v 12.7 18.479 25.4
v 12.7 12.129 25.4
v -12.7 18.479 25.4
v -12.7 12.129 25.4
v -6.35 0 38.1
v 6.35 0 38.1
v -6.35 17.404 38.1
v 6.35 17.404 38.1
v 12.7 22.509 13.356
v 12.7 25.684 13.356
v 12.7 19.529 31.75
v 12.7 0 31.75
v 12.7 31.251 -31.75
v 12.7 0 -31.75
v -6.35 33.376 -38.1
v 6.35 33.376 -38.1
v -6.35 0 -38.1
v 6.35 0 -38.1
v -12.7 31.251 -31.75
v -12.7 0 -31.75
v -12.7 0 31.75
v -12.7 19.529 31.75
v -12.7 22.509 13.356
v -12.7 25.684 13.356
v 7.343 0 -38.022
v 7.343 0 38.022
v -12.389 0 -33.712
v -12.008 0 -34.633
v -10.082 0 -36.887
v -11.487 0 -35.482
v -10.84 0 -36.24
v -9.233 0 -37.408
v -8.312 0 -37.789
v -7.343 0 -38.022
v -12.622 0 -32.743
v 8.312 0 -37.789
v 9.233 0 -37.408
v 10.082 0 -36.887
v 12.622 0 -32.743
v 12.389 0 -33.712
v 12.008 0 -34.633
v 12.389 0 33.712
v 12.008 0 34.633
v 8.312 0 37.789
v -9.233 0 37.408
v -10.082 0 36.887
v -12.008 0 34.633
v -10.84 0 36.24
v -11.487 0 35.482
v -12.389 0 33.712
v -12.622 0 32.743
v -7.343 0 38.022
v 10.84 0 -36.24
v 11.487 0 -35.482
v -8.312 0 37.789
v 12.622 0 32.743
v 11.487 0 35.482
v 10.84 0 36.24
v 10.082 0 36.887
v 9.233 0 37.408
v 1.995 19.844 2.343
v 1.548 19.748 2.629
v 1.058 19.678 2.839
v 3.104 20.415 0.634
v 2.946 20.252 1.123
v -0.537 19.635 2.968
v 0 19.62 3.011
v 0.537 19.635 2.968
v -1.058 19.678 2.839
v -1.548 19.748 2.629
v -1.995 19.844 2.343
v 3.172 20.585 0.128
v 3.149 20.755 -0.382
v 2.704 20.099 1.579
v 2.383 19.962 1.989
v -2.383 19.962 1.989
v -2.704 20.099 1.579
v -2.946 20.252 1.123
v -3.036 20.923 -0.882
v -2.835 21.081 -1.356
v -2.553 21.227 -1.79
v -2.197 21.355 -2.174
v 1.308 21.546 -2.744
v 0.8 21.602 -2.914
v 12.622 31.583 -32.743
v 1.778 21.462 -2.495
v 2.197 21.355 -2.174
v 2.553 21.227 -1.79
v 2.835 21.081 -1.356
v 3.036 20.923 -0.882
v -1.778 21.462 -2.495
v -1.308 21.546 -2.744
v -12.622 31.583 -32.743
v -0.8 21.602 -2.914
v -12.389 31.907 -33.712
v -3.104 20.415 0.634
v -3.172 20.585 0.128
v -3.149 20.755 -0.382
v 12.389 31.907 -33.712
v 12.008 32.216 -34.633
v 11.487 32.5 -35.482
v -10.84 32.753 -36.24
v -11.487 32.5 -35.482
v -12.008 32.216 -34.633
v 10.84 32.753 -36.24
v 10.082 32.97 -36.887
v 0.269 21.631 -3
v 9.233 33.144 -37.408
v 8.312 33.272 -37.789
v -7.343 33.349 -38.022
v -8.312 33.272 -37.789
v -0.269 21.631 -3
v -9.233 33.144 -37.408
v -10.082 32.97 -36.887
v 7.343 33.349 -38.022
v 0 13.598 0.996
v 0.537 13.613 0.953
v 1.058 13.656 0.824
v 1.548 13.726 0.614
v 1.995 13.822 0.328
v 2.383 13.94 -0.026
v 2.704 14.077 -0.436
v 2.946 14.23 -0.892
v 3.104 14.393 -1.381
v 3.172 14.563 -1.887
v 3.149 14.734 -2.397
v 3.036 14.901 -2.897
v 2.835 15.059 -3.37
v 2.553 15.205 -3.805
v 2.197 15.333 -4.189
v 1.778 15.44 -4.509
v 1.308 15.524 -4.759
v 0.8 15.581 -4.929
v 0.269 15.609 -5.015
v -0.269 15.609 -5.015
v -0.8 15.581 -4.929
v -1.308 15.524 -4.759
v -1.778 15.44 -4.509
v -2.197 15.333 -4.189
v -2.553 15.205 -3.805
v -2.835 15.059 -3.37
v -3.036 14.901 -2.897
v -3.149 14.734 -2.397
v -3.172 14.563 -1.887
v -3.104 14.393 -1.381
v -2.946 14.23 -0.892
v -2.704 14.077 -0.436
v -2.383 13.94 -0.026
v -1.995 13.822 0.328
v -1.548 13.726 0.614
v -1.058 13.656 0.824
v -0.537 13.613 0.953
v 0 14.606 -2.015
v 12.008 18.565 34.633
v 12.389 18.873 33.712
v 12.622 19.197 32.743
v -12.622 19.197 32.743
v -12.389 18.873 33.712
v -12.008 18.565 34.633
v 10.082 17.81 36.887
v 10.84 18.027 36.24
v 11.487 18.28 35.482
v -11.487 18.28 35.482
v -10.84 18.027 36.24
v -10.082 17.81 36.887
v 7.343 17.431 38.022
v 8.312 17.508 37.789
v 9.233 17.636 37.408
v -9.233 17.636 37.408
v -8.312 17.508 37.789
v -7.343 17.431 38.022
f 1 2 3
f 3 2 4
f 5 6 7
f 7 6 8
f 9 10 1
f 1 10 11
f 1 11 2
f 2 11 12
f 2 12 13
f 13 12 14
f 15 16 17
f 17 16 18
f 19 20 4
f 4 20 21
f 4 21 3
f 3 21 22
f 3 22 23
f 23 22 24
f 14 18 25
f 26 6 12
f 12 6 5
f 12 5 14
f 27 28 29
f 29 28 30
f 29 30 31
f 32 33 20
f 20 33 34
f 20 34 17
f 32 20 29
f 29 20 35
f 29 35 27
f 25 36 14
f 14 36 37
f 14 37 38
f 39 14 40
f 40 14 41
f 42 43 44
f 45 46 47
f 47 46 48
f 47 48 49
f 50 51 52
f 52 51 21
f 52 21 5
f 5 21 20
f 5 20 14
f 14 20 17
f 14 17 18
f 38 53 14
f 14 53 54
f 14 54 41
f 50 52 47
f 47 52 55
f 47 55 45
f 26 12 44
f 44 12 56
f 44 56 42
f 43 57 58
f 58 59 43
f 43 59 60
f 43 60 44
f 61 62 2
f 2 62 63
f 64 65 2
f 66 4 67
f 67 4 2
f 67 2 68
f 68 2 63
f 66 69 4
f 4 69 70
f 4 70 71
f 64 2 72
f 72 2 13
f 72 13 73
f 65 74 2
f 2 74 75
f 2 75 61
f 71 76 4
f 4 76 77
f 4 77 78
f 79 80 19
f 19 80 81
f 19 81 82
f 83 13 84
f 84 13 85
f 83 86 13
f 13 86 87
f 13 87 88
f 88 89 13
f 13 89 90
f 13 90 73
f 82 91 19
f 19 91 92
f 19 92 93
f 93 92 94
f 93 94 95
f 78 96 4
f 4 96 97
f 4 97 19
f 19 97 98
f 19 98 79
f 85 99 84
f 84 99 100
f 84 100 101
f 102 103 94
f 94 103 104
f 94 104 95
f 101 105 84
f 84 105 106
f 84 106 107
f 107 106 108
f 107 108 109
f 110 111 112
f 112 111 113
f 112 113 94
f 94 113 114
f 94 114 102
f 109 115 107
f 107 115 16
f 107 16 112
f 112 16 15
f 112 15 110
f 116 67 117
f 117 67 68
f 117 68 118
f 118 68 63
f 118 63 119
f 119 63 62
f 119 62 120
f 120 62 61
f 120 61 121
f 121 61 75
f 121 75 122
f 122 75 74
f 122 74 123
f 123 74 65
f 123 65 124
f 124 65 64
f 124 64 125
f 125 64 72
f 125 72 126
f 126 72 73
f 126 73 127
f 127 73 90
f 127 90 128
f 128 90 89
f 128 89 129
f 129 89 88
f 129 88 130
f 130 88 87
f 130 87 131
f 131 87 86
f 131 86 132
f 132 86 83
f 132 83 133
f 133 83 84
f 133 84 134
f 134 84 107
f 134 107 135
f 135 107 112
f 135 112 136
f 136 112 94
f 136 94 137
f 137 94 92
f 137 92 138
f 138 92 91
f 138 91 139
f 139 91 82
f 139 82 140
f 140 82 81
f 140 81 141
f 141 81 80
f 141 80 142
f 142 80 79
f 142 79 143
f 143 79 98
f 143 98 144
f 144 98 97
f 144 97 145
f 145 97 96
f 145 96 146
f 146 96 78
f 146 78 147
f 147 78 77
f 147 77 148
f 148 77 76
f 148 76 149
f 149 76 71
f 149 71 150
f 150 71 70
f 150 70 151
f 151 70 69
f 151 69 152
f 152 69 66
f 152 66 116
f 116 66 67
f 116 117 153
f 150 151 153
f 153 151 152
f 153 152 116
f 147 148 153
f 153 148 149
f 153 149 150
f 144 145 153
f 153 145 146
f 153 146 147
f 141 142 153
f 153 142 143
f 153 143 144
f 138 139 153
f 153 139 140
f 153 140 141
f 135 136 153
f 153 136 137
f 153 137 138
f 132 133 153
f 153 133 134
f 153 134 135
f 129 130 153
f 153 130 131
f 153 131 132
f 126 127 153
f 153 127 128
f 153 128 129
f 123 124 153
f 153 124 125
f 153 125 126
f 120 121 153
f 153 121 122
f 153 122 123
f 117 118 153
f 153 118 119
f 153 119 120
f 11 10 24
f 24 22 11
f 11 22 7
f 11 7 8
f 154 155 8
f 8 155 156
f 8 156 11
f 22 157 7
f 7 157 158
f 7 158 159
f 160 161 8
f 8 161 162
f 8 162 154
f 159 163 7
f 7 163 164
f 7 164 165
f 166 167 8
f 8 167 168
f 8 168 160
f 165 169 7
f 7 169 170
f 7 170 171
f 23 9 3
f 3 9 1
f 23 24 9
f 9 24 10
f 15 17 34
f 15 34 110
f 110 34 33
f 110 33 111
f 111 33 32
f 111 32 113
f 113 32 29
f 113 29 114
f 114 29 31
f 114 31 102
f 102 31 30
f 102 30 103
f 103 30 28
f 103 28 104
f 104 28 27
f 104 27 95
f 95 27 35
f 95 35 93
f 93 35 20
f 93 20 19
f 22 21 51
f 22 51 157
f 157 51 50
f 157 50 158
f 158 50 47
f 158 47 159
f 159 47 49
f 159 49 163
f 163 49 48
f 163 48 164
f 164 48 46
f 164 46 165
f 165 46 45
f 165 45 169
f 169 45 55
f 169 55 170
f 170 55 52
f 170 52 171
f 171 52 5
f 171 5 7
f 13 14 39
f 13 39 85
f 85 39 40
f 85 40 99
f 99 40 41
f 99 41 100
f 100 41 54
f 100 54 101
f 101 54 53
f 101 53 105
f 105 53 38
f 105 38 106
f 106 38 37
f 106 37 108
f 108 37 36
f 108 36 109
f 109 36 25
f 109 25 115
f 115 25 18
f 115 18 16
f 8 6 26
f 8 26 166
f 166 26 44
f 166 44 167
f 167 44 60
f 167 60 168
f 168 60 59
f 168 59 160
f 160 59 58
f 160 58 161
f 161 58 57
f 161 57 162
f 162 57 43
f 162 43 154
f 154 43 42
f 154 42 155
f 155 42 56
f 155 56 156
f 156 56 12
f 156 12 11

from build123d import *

# Parameters (mm, degrees)
SKETCH1_W               = 25.4
SKETCH1_H               = 76.2
BOSS_EXTRUDE1_DEPTH     = 33.3756
CUT_EXTRUDE2_DEPTH      = 57.663045059
CUT_EXTRUDE2_DEPTH_BACK = 57.663045059
SKETCH5_R               = 3.175
CUT_EXTRUDE3_DEPTH      = 6.35
BOSS_EXTRUDE2_REACH     = 63.744
SKETCH1_5_W             = 25.4
SKETCH1_5_H             = 12.7
SKETCH7_W               = 25.4
SKETCH7_H               = 3.175
BOSS_EXTRUDE3_DEPTH     = 12.7
FILLET1_R               = 6.35


with BuildPart() as part:
    # Sketch1 → Boss-Extrude1 (new body)
    with BuildSketch(Plane(origin=(0, 0, 0), x_dir=(1, 0, 0), z_dir=(0, 1, 0))):
        Rectangle(SKETCH1_W, SKETCH1_H)
    extrude(amount=BOSS_EXTRUDE1_DEPTH)

    # Sketch4 → Cut-Extrude2 (cut, two sides: drawn at the far end of the back side and taken through both)
    with BuildSketch(Plane(origin=(12.7, 0, 0), x_dir=(0, 0, -1), z_dir=(1, 0, 0)).offset(-CUT_EXTRUDE2_DEPTH_BACK)):
        Polygon((38.1, 33.3756), (-38.1, 33.3756), (-38.1, 7.879436654), align=None)
    extrude(amount=CUT_EXTRUDE2_DEPTH + CUT_EXTRUDE2_DEPTH_BACK, mode=Mode.SUBTRACT)

    # Sketch5 → Cut-Extrude3 (cut)
    with BuildSketch(Plane(origin=(0, 18.550693474, 6.20697521), x_dir=(1, 0, 0), z_dir=(0, 0.9483236552061992, 0.3173046564050927))):
        with Locations((0, 6.545207615)):
            Circle(SKETCH5_R)
    extrude(amount=-CUT_EXTRUDE3_DEPTH, mode=Mode.SUBTRACT)

    # Boss-Extrude2: from a plane face, 63.744 long prism both ways, kept between that surface and its translate by the depth
    boss_extrude2_start = Plane(origin=(-12.7, 7.879436654, 38.1), z_dir=(0, -0.9483236552061992, -0.3173046564050927)) * Box(256.976, 256.976, 128.488, align=(Align.CENTER, Align.CENTER, Align.MIN), mode=Mode.PRIVATE)
    boss_extrude2_end = Plane(origin=(-12.7, 17.404436654, 38.1), z_dir=(0, -0.9483236552061992, -0.3173046564050927)) * Box(256.976, 256.976, 128.488, align=(Align.CENTER, Align.CENTER, Align.MIN), mode=Mode.PRIVATE)
    # Sketch1<5> → Boss-Extrude2 (add, from a surface)
    with BuildSketch(Plane(origin=(0, 0, 0), x_dir=(1, 0, 0), z_dir=(0, 1, 0)), mode=Mode.PRIVATE) as boss_extrude2_sk1:
        with Locations((0, -31.75)):
            Rectangle(SKETCH1_5_W, SKETCH1_5_H)
    boss_extrude2_tool1 = extrude(boss_extrude2_sk1.sketch, amount=BOSS_EXTRUDE2_REACH, both=True, mode=Mode.PRIVATE)
    add(((boss_extrude2_tool1 - boss_extrude2_start) & boss_extrude2_end).solids().sort_by_distance((0, 19.620076, 3.010928))[0])

    # Sketch7 → Boss-Extrude3 (add, along a direction that is not the sketch's normal)
    with BuildSketch(Plane(origin=(0, 0, 25.4), x_dir=(-1, 0, 0), z_dir=(0, 0, -1))):
        with Locations((0, 20.066297212)):
            Rectangle(SKETCH7_W, SKETCH7_H)
    extrude(amount=BOSS_EXTRUDE3_DEPTH, dir=(0, 0.31730465640509264, -0.9483236552061991))

    # Fillet1
    fillet1_edges = [part.edges().sort_by_distance(p)[0] for p in [
        (-12.7, 16.6878, -38.1),
        (-12.7, 8.702218327, 38.1),
        (12.7, 16.6878, -38.1),
        (12.7, 8.702218327, 38.1),
    ]]
    fillet(fillet1_edges, radius=FILLET1_R)


solid = part.part
